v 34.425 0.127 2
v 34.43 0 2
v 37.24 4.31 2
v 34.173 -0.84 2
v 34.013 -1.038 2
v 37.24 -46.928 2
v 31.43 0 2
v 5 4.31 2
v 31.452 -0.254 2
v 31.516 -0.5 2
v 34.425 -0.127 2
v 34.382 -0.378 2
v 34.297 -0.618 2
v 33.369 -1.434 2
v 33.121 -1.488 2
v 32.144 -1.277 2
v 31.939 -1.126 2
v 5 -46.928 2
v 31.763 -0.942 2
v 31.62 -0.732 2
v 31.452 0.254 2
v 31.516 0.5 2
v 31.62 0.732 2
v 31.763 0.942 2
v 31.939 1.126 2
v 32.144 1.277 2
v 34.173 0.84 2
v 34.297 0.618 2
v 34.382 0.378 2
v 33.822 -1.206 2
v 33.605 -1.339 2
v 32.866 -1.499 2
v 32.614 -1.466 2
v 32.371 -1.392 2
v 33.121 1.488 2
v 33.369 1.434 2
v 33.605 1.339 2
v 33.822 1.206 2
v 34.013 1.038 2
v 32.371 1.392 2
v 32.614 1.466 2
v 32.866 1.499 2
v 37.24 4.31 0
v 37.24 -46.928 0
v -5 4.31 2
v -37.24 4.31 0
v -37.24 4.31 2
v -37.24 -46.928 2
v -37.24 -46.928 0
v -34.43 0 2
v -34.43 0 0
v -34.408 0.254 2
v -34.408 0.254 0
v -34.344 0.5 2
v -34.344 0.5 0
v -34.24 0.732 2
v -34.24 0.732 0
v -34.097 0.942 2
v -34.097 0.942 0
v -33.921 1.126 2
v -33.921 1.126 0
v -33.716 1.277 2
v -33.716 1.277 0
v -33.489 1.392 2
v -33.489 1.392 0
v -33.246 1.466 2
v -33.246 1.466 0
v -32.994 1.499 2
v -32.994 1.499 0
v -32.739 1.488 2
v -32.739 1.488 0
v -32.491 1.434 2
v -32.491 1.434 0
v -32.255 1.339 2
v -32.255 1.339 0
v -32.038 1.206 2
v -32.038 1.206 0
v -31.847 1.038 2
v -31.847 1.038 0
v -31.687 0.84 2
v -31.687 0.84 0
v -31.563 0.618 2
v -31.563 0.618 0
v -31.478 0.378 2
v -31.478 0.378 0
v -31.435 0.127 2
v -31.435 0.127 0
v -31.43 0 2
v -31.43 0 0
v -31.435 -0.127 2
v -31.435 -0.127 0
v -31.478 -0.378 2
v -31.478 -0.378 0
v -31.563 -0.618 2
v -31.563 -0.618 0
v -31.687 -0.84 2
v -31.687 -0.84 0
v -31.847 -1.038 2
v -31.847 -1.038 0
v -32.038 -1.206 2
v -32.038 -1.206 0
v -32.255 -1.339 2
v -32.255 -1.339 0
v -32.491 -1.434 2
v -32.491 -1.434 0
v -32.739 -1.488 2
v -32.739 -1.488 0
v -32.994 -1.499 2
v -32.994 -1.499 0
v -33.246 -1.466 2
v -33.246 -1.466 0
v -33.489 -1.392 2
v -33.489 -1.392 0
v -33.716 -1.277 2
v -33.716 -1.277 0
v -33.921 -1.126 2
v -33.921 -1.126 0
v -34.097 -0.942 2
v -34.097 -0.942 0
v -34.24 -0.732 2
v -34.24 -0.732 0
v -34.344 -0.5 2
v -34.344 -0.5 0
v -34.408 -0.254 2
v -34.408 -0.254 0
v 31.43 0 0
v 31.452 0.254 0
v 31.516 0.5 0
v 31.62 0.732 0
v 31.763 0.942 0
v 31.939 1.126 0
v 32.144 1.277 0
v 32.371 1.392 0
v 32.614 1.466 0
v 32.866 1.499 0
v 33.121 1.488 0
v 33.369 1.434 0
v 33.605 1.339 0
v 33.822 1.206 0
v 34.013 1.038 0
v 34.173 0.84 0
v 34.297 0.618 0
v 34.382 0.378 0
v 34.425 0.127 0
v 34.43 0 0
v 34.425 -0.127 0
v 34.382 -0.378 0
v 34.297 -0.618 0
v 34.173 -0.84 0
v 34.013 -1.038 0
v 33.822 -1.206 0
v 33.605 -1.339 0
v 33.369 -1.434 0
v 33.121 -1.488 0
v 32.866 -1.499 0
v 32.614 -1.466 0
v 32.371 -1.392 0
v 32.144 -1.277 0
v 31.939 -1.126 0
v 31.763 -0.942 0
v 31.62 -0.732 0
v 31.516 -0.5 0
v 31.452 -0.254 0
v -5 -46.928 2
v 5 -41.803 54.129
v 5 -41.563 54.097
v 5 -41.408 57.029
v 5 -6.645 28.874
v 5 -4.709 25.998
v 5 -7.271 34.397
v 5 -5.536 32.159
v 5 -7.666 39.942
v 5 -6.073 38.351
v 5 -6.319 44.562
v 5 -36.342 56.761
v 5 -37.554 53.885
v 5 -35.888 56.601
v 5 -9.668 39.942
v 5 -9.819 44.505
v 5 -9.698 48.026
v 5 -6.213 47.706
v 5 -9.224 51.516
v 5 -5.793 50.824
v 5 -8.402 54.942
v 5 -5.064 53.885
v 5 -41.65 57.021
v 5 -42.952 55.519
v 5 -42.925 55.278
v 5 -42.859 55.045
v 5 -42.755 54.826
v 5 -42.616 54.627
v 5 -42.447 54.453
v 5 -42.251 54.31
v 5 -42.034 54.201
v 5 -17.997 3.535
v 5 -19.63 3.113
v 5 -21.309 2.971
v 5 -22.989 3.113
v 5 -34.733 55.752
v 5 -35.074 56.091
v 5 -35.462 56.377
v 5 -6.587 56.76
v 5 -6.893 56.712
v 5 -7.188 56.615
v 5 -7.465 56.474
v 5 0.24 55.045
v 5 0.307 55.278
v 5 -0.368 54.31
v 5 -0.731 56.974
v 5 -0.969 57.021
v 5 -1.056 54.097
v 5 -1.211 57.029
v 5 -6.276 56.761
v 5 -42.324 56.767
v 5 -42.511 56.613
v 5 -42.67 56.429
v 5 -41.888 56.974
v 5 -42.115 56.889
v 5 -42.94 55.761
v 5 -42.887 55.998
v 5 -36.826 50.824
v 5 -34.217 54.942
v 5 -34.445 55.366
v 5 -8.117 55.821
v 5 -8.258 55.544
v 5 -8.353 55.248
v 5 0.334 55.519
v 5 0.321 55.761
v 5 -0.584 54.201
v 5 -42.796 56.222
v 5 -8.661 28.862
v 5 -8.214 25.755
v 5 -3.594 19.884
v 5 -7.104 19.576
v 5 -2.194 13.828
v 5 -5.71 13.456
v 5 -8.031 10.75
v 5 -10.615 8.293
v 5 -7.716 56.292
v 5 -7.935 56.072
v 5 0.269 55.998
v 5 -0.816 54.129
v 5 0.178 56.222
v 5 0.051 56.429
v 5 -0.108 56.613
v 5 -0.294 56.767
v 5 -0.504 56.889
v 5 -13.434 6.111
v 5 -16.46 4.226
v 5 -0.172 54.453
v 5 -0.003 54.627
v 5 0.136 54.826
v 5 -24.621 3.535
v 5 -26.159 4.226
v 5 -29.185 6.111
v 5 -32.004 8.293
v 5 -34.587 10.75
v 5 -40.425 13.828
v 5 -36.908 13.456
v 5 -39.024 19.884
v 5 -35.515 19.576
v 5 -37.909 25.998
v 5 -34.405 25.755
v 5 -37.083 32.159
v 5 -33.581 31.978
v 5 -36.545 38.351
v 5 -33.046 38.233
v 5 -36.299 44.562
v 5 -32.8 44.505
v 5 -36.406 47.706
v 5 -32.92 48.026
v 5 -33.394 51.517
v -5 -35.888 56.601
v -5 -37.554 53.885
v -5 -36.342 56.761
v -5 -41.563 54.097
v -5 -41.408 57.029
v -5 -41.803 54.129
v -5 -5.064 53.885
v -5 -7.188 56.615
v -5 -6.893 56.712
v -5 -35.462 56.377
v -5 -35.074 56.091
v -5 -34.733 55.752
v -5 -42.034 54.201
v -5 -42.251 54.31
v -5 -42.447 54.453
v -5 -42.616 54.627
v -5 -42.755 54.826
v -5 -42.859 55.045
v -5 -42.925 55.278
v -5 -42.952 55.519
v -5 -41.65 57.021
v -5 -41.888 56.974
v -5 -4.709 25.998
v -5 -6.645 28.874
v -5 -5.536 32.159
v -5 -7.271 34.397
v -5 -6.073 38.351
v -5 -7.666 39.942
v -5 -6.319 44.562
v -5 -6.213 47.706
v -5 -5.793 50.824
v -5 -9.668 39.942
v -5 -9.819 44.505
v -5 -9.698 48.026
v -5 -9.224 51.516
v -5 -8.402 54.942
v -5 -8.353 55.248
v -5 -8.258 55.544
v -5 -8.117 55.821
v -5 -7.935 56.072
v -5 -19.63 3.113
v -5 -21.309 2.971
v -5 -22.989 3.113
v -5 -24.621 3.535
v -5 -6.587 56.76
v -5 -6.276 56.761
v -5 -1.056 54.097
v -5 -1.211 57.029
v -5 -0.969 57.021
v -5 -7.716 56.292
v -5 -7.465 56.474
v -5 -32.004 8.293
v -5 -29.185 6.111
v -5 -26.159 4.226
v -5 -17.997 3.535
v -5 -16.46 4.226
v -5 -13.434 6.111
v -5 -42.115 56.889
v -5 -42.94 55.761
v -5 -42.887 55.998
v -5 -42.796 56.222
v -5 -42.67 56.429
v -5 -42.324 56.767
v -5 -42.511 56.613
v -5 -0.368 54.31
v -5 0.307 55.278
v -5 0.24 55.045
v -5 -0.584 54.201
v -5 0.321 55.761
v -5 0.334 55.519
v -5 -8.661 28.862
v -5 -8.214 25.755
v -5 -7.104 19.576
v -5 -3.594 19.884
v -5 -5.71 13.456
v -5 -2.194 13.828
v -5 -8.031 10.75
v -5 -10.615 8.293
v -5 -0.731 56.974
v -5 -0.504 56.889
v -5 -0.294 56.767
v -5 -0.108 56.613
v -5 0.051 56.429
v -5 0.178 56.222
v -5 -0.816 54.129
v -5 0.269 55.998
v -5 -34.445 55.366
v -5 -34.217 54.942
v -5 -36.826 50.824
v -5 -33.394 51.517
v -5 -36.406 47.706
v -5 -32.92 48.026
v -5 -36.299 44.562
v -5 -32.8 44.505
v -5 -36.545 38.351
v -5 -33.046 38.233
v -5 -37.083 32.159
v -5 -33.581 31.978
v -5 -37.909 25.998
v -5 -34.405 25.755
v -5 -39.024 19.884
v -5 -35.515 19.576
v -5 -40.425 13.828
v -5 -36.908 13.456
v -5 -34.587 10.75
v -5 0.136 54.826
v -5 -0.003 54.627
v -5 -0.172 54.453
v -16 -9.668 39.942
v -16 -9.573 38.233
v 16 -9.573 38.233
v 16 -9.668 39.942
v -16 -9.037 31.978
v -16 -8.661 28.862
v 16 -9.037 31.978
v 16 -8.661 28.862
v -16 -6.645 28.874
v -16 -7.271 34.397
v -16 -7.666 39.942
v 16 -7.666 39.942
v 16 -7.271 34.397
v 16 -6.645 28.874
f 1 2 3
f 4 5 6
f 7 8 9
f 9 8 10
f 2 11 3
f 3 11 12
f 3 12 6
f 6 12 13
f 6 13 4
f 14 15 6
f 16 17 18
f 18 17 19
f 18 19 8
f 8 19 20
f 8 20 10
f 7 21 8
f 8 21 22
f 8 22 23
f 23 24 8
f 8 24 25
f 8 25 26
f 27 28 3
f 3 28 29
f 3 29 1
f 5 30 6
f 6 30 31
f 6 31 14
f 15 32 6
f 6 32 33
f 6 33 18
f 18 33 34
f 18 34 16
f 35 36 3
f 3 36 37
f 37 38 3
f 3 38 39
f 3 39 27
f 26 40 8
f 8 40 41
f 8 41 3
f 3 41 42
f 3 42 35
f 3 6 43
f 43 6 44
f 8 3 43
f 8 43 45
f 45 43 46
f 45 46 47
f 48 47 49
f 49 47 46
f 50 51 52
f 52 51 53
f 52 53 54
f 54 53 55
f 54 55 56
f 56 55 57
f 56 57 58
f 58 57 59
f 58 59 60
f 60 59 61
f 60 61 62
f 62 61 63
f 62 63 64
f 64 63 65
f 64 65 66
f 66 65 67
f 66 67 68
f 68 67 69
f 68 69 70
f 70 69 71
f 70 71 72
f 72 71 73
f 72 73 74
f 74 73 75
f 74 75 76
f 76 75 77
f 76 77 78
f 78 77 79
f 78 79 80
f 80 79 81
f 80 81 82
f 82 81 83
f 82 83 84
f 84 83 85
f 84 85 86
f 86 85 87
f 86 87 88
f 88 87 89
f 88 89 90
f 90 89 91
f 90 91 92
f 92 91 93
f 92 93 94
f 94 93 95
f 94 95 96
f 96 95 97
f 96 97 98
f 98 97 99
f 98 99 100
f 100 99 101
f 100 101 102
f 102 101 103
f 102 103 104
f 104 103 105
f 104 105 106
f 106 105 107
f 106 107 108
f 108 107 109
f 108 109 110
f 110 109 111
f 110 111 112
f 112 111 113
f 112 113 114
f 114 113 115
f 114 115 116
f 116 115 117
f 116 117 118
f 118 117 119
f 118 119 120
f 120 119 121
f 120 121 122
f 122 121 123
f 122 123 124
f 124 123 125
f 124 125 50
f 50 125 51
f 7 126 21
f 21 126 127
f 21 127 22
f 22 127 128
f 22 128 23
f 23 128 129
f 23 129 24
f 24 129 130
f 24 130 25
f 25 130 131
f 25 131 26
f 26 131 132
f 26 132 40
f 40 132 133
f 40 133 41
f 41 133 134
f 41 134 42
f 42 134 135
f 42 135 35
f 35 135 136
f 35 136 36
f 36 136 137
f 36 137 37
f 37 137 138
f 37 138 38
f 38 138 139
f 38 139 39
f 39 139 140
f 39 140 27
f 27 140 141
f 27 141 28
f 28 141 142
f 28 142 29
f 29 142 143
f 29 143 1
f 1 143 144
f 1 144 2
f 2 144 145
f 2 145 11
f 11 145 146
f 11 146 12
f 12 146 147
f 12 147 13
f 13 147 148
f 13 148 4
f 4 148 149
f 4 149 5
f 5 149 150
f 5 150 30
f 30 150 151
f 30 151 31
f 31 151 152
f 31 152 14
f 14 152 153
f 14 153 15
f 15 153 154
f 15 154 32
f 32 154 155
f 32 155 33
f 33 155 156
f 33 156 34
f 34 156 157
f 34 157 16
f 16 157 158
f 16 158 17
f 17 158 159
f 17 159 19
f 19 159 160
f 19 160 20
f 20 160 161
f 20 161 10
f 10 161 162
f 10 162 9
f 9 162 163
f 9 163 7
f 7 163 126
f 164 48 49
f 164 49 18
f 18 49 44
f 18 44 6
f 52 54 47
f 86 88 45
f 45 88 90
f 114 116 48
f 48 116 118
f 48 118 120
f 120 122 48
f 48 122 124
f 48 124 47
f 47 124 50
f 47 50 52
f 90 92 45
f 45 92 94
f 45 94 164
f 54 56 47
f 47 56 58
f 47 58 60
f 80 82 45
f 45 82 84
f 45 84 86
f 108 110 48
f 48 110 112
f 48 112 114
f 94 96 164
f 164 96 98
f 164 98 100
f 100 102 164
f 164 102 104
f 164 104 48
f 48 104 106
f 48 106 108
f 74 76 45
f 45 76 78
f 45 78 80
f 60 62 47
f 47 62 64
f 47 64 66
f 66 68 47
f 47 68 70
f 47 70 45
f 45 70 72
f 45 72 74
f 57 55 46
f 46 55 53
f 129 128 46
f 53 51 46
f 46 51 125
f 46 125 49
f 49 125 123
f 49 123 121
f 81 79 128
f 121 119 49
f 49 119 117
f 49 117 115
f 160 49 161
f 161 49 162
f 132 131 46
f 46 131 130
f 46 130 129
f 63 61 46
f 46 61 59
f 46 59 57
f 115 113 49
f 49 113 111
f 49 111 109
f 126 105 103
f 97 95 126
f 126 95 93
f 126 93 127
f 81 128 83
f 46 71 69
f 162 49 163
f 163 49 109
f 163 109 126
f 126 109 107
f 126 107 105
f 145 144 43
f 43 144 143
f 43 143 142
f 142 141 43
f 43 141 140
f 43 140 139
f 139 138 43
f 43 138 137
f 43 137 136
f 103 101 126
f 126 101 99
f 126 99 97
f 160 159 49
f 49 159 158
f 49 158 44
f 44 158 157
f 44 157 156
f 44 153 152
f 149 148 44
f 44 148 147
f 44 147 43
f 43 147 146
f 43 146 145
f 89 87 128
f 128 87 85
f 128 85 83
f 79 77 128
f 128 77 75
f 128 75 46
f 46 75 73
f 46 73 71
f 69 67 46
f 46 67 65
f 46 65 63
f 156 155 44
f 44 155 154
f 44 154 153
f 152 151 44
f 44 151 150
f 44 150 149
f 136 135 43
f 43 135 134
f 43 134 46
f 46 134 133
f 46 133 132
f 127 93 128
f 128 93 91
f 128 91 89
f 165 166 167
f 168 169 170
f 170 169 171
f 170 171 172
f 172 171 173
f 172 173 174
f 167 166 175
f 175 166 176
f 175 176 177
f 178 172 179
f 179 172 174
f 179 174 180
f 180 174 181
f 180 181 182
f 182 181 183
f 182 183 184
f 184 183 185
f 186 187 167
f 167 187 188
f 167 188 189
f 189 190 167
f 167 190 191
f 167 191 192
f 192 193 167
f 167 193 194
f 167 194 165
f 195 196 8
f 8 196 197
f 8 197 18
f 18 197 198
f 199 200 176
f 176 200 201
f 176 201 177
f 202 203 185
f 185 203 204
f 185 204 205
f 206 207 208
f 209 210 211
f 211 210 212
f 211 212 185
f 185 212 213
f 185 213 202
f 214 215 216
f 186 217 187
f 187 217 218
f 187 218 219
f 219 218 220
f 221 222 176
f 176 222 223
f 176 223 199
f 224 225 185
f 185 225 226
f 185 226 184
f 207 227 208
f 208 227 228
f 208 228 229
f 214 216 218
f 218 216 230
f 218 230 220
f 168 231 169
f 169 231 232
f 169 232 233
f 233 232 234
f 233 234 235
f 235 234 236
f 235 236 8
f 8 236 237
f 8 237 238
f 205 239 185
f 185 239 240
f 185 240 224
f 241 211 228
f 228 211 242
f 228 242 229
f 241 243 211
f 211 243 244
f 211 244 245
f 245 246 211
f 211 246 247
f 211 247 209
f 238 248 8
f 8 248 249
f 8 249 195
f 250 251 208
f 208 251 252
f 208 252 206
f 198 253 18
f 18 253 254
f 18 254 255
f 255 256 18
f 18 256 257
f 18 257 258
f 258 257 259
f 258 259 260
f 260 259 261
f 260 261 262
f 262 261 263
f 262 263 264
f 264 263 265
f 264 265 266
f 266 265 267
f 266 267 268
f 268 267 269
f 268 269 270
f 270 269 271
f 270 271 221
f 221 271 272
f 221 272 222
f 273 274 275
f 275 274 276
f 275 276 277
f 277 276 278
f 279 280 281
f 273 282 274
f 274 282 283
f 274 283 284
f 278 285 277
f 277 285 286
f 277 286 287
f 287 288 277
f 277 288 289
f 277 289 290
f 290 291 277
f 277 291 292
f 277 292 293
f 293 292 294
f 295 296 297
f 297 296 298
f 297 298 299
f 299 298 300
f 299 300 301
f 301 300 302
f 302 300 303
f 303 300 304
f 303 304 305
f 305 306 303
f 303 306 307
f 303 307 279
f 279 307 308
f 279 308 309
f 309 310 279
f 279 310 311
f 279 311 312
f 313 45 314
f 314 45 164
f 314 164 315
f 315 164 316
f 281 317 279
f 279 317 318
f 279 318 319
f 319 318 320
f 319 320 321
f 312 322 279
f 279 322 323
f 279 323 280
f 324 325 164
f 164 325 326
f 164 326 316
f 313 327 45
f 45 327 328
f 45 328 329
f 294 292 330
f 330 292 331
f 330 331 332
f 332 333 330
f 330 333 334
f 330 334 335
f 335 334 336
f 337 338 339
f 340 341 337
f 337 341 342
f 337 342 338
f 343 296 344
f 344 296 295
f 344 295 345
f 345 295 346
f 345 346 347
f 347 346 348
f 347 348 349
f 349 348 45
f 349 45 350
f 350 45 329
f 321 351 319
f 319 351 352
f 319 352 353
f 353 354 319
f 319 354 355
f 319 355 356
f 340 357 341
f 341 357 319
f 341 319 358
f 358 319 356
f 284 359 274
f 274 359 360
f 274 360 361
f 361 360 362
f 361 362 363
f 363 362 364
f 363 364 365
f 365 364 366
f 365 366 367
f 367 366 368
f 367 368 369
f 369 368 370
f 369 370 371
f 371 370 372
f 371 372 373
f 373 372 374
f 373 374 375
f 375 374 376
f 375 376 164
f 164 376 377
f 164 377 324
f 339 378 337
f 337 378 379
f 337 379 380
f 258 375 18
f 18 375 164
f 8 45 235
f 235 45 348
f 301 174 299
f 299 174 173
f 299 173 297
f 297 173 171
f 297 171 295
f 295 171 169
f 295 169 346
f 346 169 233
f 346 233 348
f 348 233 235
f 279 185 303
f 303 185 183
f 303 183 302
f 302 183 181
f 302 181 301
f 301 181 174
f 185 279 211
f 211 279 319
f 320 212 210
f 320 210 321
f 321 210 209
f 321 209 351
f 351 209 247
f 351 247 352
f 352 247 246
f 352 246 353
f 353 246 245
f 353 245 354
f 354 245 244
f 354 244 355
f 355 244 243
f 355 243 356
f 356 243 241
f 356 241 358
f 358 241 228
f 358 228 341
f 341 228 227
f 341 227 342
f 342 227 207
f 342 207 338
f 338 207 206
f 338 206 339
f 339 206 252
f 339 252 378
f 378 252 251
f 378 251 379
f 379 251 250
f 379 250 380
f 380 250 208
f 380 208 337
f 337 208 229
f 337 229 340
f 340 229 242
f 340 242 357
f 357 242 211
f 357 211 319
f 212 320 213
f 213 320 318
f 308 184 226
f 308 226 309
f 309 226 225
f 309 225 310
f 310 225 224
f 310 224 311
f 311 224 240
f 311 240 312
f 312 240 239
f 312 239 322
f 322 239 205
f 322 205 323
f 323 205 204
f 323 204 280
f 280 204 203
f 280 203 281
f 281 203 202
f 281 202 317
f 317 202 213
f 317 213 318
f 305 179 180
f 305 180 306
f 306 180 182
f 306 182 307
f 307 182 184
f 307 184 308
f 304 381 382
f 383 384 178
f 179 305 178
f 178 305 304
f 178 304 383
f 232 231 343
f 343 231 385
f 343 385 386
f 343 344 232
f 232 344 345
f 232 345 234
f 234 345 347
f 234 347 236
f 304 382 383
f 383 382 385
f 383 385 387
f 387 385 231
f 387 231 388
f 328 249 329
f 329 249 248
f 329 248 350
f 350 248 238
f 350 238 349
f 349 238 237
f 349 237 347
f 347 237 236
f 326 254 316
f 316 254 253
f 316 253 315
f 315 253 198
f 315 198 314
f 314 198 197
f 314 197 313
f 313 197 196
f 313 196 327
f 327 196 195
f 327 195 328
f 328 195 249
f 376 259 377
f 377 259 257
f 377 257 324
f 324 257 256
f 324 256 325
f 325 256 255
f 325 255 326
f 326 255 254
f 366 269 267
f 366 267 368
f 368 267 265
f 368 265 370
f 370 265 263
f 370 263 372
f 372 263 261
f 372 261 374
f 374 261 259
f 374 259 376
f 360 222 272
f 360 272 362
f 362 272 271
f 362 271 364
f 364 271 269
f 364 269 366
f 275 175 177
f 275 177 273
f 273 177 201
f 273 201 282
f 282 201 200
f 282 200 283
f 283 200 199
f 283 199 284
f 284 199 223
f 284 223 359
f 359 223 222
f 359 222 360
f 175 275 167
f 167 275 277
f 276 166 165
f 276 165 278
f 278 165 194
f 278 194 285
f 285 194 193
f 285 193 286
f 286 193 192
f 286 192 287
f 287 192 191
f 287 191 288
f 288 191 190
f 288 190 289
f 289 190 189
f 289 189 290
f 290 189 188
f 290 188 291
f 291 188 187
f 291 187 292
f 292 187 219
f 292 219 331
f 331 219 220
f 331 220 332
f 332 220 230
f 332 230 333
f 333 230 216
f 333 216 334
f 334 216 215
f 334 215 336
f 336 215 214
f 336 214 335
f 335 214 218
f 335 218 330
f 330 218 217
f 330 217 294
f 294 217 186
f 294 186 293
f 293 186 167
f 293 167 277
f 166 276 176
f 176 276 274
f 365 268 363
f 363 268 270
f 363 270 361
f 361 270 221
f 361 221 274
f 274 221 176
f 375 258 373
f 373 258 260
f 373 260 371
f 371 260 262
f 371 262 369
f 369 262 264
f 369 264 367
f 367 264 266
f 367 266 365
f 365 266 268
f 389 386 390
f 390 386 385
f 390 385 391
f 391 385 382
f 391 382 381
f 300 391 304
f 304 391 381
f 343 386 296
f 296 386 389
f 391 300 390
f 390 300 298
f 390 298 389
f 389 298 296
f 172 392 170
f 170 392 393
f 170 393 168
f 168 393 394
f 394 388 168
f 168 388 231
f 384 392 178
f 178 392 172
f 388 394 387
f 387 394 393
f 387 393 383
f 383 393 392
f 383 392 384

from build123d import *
from build123d.topology import SkipClean

# Parameters (mm, degrees)
SKETCH1_R                = 1.5
BOSS_EXTRUDE1_DEPTH      = 2
BOSS_EXTRUDE2_DEPTH      = 5
BOSS_EXTRUDE2_DEPTH_BACK = 5
BOSS_EXTRUDE3_DEPTH      = 16
BOSS_EXTRUDE3_DEPTH_BACK = 16


with BuildPart() as part:
    # Sketch1 → Boss-Extrude1 (new body)
    with BuildSketch(Plane.XY):
        Polygon((32.93, 4.3095034), (-32.93, 4.3095034), (-37.2395034, 4.3095034), (-37.2395034, -46.928143845), (37.2395034, -46.928143845), (37.2395034, 4.3095034), align=None)
        with Locations((1.941, -42.566)):
            Circle(SKETCH1_R, mode=Mode.SUBTRACT)
        with Locations((-32.93, 0)):
            Circle(SKETCH1_R, mode=Mode.SUBTRACT)
        with Locations((32.93, 0)):
            Circle(SKETCH1_R, mode=Mode.SUBTRACT)
    extrude(amount=BOSS_EXTRUDE1_DEPTH)

    # Sketch2 → Boss-Extrude2 (add, two sides: drawn at the far end of the back side and taken through both)
    with BuildSketch(Plane(origin=(0, 0, 0), x_dir=(0, 0, -1), z_dir=(1, 0, 0)).offset(-BOSS_EXTRUDE2_DEPTH_BACK)):
        with BuildLine():
            Line((-13.827857709, -2.193698586), (-2, 4.3095034))
            Line((-2, 4.3095034), (0, 4.3095034))
            Line((0, 4.3095034), (0, -46.928143845))
            Line((0, -46.928143845), (-2, -46.928143845))
            Line((-2, -46.928143845), (-13.827857709, -40.424941859))
            ThreePointArc((-13.827857709, -40.424941859), (-29.0735826, -37.459870422), (-44.561553332, -36.299465883))
            ThreePointArc((-44.561553332, -36.299465883), (-49.270202349, -36.576792482), (-53.884612562, -37.55429133))
            Line((-53.884612562, -37.55429133), (-54.096567625, -41.562549641))
            ThreePointArc((-54.096567625, -41.562549641), (-55.64009753, -42.951035737), (-57.028583626, -41.407505832))
            Line((-57.028583626, -41.407505832), (-56.760743998, -36.342420783))
            ThreePointArc((-56.760743998, -36.342420783), (-56.091378633, -35.074236285), (-54.941875511, -34.216923926))
            ThreePointArc((-54.941875511, -34.216923926), (-49.777133912, -33.113502449), (-44.505153577, -32.799945311))
            ThreePointArc((-44.505153577, -32.799945311), (-28.861742138, -33.957189589), (-13.455691977, -36.908317202))
            ThreePointArc((-13.455691977, -36.908317202), (-8.292913419, -32.004111605), (-4.225812769, -26.159096012))
            ThreePointArc((-4.225812769, -26.159096012), (-2.971078619, -21.309320222), (-4.225812769, -16.459544433))
            ThreePointArc((-4.225812769, -16.459544433), (-8.292907204, -10.614536079), (-13.455676881, -5.710334914))
            ThreePointArc((-13.455676881, -5.710334914), (-28.861727042, -8.661462527), (-44.505138481, -9.818706805))
            ThreePointArc((-44.505138481, -9.818706805), (-49.777118817, -9.505149667), (-54.941860415, -8.40172819))
            ThreePointArc((-54.941860415, -8.40172819), (-56.291509436, -7.71567705), (-56.760743998, -6.276219662))
            Line((-56.760743998, -6.276219662), (-57.028583626, -1.211134613))
            ThreePointArc((-57.028583626, -1.211134613), (-55.64009753, 0.332395292), (-54.096567625, -1.056090804))
            Line((-54.096567625, -1.056090804), (-53.884612562, -5.064349115))
            ThreePointArc((-53.884612562, -5.064349115), (-49.270202349, -6.041847963), (-44.561553332, -6.319174562))
            ThreePointArc((-44.561553332, -6.319174562), (-29.0735826, -5.158770023), (-13.827857709, -2.193698586))
        make_face()
    extrude(amount=BOSS_EXTRUDE2_DEPTH + BOSS_EXTRUDE2_DEPTH_BACK)

    # Sketch5 → Boss-Extrude3 (add, two sides: drawn at the far end of the back side and taken through both)
    with SkipClean():  # the faces are left unmerged after this step: merging them gives an invalid solid
        with BuildSketch(Plane(origin=(0, 0, 0), x_dir=(0, 0, -1), z_dir=(1, 0, 0)).offset(-BOSS_EXTRUDE3_DEPTH_BACK)):
            with BuildLine():
                Line((-39.941860415, -7.665931491), (-39.941860415, -9.668427594))
                ThreePointArc((-39.941860415, -9.668427594), (-34.391490644, -9.278314981), (-28.861727042, -8.661462527))
                Line((-28.861727042, -8.661462527), (-28.874022965, -6.645436075))
                ThreePointArc((-28.874022965, -6.645436075), (-34.397354661, -7.270505974), (-39.941860415, -7.665931491))
            make_face()
        extrude(amount=BOSS_EXTRUDE3_DEPTH + BOSS_EXTRUDE3_DEPTH_BACK)


solid = part.part
